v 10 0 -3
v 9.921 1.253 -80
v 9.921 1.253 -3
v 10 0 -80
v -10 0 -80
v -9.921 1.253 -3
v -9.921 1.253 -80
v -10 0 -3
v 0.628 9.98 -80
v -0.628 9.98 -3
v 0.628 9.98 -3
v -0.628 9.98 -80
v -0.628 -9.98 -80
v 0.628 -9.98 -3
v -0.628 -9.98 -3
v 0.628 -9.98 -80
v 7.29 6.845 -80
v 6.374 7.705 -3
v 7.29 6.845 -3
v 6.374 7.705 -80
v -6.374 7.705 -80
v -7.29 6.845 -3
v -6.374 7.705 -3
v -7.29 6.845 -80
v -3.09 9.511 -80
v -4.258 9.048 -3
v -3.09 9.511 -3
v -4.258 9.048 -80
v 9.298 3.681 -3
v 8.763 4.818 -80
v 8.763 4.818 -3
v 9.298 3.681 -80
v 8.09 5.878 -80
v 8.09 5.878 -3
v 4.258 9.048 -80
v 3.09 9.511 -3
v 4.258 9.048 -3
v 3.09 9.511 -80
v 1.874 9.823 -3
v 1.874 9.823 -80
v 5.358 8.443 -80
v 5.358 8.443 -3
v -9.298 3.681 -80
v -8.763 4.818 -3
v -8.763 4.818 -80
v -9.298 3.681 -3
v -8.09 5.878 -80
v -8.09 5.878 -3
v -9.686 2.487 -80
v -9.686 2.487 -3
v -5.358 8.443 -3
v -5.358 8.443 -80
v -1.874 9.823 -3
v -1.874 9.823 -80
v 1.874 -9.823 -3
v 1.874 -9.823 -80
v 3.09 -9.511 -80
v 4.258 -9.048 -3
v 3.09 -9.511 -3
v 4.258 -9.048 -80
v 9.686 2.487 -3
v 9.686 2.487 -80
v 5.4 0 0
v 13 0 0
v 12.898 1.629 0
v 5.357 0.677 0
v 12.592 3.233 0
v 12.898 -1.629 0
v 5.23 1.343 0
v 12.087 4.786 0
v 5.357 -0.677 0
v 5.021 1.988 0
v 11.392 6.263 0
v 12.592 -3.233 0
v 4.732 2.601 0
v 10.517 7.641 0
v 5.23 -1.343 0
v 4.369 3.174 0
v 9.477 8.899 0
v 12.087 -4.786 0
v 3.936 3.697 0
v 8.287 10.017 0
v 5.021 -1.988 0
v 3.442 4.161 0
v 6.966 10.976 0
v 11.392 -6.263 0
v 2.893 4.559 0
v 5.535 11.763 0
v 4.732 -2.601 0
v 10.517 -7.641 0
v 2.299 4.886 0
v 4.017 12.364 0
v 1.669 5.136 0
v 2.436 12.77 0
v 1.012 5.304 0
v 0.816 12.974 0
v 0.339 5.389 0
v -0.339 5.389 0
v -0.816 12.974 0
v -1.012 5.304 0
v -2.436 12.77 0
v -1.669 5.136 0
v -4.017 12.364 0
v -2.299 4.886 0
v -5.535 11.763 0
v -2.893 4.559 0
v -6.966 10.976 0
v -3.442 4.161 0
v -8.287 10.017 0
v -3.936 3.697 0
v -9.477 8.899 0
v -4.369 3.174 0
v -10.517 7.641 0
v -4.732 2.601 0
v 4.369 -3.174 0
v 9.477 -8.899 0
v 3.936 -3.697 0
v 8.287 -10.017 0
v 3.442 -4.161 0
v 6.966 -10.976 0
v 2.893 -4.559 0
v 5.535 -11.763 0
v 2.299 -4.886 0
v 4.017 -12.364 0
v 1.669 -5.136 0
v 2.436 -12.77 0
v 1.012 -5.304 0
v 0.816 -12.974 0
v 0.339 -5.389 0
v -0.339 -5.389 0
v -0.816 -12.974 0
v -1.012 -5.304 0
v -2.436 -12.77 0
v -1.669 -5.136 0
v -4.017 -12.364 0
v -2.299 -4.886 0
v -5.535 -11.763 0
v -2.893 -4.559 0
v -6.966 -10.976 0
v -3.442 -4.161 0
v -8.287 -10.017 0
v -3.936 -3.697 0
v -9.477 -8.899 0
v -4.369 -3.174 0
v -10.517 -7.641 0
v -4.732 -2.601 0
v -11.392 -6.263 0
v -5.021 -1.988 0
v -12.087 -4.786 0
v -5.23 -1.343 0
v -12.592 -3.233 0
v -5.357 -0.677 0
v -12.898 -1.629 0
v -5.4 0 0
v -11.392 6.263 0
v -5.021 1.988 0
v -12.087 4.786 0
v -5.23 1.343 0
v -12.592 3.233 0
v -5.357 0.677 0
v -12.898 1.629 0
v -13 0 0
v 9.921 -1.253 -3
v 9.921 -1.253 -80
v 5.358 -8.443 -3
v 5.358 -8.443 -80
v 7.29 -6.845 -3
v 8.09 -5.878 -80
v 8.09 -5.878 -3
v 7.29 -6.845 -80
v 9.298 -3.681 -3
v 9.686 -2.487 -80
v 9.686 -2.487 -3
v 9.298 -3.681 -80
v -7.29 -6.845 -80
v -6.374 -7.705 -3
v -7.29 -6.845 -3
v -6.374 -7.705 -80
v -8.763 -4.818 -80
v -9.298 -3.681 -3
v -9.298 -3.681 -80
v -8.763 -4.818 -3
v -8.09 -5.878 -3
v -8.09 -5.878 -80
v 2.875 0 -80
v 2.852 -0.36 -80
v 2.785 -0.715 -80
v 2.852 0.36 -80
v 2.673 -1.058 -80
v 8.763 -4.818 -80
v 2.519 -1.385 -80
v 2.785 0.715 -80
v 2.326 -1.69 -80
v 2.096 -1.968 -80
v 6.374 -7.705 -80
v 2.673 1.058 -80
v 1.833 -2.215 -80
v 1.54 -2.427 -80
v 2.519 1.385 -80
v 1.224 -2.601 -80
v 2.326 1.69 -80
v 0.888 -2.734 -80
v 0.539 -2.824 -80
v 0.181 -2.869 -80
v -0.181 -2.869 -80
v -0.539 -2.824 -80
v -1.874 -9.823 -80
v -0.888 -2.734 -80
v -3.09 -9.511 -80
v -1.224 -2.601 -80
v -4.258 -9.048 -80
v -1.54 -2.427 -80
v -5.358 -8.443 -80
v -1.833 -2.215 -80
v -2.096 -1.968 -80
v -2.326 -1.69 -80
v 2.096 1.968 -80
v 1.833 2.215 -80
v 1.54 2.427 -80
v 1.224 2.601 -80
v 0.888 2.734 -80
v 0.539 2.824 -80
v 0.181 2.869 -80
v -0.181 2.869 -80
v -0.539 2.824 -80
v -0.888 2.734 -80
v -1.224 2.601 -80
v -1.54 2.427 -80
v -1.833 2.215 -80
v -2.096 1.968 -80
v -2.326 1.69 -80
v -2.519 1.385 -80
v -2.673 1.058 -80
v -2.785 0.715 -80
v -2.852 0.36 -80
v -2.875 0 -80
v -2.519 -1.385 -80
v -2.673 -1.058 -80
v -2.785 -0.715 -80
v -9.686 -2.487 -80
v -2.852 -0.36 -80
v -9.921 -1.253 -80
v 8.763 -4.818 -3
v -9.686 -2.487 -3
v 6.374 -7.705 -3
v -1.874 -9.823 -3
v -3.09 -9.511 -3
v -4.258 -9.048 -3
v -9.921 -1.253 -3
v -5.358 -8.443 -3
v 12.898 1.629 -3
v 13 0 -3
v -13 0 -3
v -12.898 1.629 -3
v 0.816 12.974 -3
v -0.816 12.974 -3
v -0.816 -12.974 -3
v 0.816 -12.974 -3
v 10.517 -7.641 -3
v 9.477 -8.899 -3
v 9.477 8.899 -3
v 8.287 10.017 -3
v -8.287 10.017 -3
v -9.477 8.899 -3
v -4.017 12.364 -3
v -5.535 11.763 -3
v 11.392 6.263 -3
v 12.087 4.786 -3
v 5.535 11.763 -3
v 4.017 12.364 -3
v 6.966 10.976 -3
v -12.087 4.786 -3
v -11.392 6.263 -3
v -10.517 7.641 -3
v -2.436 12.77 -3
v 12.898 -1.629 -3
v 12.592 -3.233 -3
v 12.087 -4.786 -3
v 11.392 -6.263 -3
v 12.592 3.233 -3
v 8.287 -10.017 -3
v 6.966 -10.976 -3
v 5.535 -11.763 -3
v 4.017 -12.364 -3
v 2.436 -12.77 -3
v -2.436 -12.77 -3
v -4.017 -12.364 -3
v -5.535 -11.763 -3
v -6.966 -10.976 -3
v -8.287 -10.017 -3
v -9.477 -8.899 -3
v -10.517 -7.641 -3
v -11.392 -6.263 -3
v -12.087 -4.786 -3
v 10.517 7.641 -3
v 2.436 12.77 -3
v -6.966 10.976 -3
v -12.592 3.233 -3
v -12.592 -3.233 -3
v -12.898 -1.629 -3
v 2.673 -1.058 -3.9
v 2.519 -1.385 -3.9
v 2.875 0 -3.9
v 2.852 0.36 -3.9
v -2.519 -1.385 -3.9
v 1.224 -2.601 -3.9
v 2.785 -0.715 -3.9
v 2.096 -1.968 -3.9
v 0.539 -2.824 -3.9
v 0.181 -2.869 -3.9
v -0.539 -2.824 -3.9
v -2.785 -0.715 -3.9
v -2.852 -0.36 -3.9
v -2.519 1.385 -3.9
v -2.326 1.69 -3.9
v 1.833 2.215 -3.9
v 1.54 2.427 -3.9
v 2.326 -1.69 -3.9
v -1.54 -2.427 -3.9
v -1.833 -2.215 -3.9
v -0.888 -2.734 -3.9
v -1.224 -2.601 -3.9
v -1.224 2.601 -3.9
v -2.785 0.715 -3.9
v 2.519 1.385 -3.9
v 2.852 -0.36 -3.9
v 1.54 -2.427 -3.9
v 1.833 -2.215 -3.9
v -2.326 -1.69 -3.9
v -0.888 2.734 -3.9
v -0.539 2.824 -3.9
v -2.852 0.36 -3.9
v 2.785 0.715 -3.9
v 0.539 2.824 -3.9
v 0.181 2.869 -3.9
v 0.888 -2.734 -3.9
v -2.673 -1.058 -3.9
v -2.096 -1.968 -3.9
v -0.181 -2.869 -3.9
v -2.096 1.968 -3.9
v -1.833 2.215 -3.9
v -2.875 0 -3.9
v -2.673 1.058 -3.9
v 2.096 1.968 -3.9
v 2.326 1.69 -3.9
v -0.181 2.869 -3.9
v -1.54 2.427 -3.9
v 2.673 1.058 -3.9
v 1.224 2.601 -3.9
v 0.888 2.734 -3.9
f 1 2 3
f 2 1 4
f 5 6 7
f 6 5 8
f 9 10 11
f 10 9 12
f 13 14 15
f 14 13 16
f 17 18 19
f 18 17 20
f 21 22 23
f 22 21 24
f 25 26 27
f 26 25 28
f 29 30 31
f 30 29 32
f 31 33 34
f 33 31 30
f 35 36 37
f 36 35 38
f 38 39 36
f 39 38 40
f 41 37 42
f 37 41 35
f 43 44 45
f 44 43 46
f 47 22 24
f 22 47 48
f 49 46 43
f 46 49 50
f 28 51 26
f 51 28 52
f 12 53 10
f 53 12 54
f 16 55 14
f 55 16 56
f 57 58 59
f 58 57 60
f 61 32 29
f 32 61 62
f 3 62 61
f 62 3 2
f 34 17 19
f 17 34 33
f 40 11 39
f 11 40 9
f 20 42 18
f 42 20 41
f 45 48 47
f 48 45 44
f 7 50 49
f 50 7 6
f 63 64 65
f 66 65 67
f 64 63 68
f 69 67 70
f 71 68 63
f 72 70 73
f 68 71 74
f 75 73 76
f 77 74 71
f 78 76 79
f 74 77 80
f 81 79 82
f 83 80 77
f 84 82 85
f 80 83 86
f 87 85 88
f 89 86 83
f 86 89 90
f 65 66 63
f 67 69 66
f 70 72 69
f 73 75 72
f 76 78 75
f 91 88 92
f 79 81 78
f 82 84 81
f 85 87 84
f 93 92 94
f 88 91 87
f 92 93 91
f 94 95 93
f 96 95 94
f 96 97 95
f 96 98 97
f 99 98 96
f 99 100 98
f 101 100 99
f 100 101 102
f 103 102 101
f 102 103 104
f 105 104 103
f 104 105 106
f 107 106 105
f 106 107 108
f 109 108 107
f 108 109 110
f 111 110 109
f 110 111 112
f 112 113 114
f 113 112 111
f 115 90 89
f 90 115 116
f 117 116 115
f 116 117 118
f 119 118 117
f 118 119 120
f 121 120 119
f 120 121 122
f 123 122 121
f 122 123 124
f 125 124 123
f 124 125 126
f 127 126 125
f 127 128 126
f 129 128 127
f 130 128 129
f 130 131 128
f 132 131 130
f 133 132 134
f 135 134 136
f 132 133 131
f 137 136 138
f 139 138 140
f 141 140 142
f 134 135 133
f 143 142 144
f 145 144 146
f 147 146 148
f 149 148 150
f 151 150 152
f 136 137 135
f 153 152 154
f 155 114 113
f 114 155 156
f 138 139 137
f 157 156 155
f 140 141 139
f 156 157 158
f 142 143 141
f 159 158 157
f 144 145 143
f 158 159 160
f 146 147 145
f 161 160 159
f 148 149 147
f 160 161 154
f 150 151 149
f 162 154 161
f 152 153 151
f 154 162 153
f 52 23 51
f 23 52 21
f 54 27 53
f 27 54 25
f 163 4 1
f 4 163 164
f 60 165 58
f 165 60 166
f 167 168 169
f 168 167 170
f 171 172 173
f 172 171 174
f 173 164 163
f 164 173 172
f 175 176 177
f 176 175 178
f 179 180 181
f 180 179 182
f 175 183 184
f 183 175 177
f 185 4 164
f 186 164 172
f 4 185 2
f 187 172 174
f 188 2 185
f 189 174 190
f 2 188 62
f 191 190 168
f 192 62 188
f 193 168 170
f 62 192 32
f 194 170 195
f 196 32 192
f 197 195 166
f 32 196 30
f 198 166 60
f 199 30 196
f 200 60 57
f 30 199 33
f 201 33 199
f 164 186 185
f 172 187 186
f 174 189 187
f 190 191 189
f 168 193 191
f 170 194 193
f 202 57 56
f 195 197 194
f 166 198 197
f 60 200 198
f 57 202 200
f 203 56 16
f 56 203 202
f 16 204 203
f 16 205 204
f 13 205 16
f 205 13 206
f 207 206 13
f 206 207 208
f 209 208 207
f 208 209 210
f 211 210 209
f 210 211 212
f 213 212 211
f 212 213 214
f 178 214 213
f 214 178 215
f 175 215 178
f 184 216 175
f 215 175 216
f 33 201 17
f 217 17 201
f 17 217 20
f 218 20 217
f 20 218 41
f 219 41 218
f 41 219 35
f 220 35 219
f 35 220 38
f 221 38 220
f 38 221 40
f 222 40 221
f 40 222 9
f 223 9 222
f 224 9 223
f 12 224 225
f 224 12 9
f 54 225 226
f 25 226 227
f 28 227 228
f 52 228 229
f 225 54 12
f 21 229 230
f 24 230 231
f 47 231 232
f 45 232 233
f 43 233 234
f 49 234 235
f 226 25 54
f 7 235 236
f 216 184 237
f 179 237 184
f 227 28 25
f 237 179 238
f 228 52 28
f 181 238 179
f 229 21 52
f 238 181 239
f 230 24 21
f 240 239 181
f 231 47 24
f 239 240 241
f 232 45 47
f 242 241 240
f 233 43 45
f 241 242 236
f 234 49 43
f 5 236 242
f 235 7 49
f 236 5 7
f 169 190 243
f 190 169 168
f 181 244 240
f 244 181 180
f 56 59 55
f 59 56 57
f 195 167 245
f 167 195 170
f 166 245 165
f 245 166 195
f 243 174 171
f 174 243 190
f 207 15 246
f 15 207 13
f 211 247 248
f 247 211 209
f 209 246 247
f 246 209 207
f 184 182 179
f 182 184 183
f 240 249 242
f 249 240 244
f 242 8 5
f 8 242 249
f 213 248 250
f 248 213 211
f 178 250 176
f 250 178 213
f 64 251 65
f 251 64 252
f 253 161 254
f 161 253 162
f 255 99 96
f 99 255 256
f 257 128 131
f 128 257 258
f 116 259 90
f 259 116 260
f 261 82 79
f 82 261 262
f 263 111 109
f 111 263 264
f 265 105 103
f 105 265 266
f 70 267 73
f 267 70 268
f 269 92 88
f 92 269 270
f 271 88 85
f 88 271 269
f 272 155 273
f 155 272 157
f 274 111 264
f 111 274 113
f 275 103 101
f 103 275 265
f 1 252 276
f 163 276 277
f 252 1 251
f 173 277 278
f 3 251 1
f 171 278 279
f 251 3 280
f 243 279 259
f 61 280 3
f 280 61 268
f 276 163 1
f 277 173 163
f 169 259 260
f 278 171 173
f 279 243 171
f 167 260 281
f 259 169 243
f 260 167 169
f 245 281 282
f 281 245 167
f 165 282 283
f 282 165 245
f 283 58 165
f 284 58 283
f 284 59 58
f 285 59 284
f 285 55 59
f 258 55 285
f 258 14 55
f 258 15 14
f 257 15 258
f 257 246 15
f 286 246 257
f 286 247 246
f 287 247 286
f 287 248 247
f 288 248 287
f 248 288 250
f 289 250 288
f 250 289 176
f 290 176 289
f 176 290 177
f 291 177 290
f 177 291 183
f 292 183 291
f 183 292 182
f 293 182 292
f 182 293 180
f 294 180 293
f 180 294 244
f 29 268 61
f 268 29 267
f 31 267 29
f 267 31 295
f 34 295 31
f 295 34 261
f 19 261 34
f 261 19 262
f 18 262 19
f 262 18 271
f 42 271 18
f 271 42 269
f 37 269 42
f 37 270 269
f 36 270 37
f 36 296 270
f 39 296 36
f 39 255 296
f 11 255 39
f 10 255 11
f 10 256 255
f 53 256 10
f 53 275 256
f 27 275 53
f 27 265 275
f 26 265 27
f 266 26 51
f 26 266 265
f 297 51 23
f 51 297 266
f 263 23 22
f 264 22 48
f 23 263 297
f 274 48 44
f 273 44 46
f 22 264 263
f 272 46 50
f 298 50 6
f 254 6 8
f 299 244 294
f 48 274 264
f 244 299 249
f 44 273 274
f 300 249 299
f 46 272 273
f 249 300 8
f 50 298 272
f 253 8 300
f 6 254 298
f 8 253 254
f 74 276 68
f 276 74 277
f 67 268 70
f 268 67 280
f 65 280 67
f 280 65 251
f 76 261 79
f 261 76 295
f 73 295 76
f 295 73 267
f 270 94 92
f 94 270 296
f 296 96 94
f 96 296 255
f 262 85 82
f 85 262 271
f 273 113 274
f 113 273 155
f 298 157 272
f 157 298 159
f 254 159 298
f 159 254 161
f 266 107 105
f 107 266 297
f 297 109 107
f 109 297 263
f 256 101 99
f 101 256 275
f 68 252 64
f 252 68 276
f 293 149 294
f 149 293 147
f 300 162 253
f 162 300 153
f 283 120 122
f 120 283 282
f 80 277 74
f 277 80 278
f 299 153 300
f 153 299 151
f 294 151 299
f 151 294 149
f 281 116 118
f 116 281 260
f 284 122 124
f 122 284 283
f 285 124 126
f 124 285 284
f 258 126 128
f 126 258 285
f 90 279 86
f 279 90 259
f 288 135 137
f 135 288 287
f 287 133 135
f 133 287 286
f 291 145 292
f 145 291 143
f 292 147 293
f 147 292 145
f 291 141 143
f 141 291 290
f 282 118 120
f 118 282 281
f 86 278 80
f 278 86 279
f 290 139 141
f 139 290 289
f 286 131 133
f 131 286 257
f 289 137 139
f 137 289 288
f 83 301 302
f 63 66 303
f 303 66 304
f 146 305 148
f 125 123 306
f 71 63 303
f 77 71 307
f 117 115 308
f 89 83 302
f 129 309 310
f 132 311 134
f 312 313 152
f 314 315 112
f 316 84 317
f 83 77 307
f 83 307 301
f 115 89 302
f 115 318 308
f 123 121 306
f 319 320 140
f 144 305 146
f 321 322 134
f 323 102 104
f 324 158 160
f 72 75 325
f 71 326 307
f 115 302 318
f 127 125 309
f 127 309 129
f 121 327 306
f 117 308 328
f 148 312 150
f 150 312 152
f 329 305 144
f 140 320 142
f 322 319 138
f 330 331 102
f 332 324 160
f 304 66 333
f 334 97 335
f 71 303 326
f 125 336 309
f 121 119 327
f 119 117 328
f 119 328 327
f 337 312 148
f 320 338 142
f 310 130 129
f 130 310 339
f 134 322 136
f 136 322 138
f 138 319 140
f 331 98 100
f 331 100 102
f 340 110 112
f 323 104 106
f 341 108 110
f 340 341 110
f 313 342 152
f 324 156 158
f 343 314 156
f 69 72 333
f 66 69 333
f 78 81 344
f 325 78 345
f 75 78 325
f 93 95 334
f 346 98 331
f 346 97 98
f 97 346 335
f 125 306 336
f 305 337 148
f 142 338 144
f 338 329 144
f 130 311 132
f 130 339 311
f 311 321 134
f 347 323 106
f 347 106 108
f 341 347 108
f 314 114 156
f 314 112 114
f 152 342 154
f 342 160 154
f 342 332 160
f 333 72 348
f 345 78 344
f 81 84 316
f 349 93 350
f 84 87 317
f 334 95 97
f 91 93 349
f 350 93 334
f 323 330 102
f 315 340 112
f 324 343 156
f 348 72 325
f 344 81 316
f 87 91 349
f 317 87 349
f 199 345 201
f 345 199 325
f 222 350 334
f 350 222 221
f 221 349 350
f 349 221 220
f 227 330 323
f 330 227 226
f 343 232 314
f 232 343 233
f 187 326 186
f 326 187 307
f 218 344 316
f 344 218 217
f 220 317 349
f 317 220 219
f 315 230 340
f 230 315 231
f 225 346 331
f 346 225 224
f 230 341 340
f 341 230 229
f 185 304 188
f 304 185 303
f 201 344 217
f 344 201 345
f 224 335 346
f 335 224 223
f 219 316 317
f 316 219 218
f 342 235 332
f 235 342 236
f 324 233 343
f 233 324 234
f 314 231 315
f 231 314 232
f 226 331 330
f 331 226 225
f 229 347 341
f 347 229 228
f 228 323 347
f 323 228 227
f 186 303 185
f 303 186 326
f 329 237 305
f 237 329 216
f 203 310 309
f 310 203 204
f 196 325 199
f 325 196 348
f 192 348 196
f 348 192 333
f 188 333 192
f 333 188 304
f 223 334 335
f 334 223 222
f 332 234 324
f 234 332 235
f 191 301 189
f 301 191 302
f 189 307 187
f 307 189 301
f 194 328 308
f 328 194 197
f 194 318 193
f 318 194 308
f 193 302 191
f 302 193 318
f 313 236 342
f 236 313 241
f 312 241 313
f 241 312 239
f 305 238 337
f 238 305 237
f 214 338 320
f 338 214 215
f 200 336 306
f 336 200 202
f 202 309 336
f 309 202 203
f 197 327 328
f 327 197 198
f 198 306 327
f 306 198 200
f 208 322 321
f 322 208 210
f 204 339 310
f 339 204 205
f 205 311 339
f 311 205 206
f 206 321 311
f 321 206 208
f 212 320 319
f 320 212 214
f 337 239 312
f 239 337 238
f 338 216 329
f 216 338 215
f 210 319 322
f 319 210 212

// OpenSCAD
$fn = 50;


difference() {
	union() {
		translate(v = [0, 0, -80.0000000000]) {
			cylinder(h = 80, r = 10.0000000000);
		}
		translate(v = [0, 0, -3.0000000000]) {
			cylinder(h = 3, r = 13.0000000000);
		}
	}
	union() {
		translate(v = [0, 0, 0]) {
			rotate(a = [0, 0, 0]) {
				difference() {
					union() {
						#translate(v = [0, 0, -80.0000000000]) {
							cylinder(h = 80, r = 2.6000000000);
						}
						#translate(v = [0, 0, -3.9000000000]) {
							cylinder(h = 3.9000000000, r = 10.0000000000, r1 = 2.8750000000, r2 = 5.4000000000);
						}
						#translate(v = [0, 0, -80.0000000000]) {
							cylinder(h = 80, r = 2.8750000000);
						}
						#translate(v = [0, 0, -80.0000000000]) {
							cylinder(h = 80, r = 2.6000000000);
						}
					}
					union();
				}
			}
		}
	}
}
